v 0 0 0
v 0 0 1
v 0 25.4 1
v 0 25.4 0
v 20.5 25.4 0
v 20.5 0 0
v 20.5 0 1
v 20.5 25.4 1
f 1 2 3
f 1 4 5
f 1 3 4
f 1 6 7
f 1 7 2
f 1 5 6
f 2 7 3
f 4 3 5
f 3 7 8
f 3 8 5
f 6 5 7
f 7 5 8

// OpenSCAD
/* Warning, this is a very basic generator with a lot of approximation 
input data : [MODULE, 6YX, 20.5x25.4mm, 52, , B, C04-10050B]
generated by com.zoubworld.electronics.cad.model3d.Basic
Date : Sun Feb 15 10:50:49 CET 2026
*/

//body
color("black")
translate([0,0,0])
cube([20.5,25.4,1.0], center=false);
